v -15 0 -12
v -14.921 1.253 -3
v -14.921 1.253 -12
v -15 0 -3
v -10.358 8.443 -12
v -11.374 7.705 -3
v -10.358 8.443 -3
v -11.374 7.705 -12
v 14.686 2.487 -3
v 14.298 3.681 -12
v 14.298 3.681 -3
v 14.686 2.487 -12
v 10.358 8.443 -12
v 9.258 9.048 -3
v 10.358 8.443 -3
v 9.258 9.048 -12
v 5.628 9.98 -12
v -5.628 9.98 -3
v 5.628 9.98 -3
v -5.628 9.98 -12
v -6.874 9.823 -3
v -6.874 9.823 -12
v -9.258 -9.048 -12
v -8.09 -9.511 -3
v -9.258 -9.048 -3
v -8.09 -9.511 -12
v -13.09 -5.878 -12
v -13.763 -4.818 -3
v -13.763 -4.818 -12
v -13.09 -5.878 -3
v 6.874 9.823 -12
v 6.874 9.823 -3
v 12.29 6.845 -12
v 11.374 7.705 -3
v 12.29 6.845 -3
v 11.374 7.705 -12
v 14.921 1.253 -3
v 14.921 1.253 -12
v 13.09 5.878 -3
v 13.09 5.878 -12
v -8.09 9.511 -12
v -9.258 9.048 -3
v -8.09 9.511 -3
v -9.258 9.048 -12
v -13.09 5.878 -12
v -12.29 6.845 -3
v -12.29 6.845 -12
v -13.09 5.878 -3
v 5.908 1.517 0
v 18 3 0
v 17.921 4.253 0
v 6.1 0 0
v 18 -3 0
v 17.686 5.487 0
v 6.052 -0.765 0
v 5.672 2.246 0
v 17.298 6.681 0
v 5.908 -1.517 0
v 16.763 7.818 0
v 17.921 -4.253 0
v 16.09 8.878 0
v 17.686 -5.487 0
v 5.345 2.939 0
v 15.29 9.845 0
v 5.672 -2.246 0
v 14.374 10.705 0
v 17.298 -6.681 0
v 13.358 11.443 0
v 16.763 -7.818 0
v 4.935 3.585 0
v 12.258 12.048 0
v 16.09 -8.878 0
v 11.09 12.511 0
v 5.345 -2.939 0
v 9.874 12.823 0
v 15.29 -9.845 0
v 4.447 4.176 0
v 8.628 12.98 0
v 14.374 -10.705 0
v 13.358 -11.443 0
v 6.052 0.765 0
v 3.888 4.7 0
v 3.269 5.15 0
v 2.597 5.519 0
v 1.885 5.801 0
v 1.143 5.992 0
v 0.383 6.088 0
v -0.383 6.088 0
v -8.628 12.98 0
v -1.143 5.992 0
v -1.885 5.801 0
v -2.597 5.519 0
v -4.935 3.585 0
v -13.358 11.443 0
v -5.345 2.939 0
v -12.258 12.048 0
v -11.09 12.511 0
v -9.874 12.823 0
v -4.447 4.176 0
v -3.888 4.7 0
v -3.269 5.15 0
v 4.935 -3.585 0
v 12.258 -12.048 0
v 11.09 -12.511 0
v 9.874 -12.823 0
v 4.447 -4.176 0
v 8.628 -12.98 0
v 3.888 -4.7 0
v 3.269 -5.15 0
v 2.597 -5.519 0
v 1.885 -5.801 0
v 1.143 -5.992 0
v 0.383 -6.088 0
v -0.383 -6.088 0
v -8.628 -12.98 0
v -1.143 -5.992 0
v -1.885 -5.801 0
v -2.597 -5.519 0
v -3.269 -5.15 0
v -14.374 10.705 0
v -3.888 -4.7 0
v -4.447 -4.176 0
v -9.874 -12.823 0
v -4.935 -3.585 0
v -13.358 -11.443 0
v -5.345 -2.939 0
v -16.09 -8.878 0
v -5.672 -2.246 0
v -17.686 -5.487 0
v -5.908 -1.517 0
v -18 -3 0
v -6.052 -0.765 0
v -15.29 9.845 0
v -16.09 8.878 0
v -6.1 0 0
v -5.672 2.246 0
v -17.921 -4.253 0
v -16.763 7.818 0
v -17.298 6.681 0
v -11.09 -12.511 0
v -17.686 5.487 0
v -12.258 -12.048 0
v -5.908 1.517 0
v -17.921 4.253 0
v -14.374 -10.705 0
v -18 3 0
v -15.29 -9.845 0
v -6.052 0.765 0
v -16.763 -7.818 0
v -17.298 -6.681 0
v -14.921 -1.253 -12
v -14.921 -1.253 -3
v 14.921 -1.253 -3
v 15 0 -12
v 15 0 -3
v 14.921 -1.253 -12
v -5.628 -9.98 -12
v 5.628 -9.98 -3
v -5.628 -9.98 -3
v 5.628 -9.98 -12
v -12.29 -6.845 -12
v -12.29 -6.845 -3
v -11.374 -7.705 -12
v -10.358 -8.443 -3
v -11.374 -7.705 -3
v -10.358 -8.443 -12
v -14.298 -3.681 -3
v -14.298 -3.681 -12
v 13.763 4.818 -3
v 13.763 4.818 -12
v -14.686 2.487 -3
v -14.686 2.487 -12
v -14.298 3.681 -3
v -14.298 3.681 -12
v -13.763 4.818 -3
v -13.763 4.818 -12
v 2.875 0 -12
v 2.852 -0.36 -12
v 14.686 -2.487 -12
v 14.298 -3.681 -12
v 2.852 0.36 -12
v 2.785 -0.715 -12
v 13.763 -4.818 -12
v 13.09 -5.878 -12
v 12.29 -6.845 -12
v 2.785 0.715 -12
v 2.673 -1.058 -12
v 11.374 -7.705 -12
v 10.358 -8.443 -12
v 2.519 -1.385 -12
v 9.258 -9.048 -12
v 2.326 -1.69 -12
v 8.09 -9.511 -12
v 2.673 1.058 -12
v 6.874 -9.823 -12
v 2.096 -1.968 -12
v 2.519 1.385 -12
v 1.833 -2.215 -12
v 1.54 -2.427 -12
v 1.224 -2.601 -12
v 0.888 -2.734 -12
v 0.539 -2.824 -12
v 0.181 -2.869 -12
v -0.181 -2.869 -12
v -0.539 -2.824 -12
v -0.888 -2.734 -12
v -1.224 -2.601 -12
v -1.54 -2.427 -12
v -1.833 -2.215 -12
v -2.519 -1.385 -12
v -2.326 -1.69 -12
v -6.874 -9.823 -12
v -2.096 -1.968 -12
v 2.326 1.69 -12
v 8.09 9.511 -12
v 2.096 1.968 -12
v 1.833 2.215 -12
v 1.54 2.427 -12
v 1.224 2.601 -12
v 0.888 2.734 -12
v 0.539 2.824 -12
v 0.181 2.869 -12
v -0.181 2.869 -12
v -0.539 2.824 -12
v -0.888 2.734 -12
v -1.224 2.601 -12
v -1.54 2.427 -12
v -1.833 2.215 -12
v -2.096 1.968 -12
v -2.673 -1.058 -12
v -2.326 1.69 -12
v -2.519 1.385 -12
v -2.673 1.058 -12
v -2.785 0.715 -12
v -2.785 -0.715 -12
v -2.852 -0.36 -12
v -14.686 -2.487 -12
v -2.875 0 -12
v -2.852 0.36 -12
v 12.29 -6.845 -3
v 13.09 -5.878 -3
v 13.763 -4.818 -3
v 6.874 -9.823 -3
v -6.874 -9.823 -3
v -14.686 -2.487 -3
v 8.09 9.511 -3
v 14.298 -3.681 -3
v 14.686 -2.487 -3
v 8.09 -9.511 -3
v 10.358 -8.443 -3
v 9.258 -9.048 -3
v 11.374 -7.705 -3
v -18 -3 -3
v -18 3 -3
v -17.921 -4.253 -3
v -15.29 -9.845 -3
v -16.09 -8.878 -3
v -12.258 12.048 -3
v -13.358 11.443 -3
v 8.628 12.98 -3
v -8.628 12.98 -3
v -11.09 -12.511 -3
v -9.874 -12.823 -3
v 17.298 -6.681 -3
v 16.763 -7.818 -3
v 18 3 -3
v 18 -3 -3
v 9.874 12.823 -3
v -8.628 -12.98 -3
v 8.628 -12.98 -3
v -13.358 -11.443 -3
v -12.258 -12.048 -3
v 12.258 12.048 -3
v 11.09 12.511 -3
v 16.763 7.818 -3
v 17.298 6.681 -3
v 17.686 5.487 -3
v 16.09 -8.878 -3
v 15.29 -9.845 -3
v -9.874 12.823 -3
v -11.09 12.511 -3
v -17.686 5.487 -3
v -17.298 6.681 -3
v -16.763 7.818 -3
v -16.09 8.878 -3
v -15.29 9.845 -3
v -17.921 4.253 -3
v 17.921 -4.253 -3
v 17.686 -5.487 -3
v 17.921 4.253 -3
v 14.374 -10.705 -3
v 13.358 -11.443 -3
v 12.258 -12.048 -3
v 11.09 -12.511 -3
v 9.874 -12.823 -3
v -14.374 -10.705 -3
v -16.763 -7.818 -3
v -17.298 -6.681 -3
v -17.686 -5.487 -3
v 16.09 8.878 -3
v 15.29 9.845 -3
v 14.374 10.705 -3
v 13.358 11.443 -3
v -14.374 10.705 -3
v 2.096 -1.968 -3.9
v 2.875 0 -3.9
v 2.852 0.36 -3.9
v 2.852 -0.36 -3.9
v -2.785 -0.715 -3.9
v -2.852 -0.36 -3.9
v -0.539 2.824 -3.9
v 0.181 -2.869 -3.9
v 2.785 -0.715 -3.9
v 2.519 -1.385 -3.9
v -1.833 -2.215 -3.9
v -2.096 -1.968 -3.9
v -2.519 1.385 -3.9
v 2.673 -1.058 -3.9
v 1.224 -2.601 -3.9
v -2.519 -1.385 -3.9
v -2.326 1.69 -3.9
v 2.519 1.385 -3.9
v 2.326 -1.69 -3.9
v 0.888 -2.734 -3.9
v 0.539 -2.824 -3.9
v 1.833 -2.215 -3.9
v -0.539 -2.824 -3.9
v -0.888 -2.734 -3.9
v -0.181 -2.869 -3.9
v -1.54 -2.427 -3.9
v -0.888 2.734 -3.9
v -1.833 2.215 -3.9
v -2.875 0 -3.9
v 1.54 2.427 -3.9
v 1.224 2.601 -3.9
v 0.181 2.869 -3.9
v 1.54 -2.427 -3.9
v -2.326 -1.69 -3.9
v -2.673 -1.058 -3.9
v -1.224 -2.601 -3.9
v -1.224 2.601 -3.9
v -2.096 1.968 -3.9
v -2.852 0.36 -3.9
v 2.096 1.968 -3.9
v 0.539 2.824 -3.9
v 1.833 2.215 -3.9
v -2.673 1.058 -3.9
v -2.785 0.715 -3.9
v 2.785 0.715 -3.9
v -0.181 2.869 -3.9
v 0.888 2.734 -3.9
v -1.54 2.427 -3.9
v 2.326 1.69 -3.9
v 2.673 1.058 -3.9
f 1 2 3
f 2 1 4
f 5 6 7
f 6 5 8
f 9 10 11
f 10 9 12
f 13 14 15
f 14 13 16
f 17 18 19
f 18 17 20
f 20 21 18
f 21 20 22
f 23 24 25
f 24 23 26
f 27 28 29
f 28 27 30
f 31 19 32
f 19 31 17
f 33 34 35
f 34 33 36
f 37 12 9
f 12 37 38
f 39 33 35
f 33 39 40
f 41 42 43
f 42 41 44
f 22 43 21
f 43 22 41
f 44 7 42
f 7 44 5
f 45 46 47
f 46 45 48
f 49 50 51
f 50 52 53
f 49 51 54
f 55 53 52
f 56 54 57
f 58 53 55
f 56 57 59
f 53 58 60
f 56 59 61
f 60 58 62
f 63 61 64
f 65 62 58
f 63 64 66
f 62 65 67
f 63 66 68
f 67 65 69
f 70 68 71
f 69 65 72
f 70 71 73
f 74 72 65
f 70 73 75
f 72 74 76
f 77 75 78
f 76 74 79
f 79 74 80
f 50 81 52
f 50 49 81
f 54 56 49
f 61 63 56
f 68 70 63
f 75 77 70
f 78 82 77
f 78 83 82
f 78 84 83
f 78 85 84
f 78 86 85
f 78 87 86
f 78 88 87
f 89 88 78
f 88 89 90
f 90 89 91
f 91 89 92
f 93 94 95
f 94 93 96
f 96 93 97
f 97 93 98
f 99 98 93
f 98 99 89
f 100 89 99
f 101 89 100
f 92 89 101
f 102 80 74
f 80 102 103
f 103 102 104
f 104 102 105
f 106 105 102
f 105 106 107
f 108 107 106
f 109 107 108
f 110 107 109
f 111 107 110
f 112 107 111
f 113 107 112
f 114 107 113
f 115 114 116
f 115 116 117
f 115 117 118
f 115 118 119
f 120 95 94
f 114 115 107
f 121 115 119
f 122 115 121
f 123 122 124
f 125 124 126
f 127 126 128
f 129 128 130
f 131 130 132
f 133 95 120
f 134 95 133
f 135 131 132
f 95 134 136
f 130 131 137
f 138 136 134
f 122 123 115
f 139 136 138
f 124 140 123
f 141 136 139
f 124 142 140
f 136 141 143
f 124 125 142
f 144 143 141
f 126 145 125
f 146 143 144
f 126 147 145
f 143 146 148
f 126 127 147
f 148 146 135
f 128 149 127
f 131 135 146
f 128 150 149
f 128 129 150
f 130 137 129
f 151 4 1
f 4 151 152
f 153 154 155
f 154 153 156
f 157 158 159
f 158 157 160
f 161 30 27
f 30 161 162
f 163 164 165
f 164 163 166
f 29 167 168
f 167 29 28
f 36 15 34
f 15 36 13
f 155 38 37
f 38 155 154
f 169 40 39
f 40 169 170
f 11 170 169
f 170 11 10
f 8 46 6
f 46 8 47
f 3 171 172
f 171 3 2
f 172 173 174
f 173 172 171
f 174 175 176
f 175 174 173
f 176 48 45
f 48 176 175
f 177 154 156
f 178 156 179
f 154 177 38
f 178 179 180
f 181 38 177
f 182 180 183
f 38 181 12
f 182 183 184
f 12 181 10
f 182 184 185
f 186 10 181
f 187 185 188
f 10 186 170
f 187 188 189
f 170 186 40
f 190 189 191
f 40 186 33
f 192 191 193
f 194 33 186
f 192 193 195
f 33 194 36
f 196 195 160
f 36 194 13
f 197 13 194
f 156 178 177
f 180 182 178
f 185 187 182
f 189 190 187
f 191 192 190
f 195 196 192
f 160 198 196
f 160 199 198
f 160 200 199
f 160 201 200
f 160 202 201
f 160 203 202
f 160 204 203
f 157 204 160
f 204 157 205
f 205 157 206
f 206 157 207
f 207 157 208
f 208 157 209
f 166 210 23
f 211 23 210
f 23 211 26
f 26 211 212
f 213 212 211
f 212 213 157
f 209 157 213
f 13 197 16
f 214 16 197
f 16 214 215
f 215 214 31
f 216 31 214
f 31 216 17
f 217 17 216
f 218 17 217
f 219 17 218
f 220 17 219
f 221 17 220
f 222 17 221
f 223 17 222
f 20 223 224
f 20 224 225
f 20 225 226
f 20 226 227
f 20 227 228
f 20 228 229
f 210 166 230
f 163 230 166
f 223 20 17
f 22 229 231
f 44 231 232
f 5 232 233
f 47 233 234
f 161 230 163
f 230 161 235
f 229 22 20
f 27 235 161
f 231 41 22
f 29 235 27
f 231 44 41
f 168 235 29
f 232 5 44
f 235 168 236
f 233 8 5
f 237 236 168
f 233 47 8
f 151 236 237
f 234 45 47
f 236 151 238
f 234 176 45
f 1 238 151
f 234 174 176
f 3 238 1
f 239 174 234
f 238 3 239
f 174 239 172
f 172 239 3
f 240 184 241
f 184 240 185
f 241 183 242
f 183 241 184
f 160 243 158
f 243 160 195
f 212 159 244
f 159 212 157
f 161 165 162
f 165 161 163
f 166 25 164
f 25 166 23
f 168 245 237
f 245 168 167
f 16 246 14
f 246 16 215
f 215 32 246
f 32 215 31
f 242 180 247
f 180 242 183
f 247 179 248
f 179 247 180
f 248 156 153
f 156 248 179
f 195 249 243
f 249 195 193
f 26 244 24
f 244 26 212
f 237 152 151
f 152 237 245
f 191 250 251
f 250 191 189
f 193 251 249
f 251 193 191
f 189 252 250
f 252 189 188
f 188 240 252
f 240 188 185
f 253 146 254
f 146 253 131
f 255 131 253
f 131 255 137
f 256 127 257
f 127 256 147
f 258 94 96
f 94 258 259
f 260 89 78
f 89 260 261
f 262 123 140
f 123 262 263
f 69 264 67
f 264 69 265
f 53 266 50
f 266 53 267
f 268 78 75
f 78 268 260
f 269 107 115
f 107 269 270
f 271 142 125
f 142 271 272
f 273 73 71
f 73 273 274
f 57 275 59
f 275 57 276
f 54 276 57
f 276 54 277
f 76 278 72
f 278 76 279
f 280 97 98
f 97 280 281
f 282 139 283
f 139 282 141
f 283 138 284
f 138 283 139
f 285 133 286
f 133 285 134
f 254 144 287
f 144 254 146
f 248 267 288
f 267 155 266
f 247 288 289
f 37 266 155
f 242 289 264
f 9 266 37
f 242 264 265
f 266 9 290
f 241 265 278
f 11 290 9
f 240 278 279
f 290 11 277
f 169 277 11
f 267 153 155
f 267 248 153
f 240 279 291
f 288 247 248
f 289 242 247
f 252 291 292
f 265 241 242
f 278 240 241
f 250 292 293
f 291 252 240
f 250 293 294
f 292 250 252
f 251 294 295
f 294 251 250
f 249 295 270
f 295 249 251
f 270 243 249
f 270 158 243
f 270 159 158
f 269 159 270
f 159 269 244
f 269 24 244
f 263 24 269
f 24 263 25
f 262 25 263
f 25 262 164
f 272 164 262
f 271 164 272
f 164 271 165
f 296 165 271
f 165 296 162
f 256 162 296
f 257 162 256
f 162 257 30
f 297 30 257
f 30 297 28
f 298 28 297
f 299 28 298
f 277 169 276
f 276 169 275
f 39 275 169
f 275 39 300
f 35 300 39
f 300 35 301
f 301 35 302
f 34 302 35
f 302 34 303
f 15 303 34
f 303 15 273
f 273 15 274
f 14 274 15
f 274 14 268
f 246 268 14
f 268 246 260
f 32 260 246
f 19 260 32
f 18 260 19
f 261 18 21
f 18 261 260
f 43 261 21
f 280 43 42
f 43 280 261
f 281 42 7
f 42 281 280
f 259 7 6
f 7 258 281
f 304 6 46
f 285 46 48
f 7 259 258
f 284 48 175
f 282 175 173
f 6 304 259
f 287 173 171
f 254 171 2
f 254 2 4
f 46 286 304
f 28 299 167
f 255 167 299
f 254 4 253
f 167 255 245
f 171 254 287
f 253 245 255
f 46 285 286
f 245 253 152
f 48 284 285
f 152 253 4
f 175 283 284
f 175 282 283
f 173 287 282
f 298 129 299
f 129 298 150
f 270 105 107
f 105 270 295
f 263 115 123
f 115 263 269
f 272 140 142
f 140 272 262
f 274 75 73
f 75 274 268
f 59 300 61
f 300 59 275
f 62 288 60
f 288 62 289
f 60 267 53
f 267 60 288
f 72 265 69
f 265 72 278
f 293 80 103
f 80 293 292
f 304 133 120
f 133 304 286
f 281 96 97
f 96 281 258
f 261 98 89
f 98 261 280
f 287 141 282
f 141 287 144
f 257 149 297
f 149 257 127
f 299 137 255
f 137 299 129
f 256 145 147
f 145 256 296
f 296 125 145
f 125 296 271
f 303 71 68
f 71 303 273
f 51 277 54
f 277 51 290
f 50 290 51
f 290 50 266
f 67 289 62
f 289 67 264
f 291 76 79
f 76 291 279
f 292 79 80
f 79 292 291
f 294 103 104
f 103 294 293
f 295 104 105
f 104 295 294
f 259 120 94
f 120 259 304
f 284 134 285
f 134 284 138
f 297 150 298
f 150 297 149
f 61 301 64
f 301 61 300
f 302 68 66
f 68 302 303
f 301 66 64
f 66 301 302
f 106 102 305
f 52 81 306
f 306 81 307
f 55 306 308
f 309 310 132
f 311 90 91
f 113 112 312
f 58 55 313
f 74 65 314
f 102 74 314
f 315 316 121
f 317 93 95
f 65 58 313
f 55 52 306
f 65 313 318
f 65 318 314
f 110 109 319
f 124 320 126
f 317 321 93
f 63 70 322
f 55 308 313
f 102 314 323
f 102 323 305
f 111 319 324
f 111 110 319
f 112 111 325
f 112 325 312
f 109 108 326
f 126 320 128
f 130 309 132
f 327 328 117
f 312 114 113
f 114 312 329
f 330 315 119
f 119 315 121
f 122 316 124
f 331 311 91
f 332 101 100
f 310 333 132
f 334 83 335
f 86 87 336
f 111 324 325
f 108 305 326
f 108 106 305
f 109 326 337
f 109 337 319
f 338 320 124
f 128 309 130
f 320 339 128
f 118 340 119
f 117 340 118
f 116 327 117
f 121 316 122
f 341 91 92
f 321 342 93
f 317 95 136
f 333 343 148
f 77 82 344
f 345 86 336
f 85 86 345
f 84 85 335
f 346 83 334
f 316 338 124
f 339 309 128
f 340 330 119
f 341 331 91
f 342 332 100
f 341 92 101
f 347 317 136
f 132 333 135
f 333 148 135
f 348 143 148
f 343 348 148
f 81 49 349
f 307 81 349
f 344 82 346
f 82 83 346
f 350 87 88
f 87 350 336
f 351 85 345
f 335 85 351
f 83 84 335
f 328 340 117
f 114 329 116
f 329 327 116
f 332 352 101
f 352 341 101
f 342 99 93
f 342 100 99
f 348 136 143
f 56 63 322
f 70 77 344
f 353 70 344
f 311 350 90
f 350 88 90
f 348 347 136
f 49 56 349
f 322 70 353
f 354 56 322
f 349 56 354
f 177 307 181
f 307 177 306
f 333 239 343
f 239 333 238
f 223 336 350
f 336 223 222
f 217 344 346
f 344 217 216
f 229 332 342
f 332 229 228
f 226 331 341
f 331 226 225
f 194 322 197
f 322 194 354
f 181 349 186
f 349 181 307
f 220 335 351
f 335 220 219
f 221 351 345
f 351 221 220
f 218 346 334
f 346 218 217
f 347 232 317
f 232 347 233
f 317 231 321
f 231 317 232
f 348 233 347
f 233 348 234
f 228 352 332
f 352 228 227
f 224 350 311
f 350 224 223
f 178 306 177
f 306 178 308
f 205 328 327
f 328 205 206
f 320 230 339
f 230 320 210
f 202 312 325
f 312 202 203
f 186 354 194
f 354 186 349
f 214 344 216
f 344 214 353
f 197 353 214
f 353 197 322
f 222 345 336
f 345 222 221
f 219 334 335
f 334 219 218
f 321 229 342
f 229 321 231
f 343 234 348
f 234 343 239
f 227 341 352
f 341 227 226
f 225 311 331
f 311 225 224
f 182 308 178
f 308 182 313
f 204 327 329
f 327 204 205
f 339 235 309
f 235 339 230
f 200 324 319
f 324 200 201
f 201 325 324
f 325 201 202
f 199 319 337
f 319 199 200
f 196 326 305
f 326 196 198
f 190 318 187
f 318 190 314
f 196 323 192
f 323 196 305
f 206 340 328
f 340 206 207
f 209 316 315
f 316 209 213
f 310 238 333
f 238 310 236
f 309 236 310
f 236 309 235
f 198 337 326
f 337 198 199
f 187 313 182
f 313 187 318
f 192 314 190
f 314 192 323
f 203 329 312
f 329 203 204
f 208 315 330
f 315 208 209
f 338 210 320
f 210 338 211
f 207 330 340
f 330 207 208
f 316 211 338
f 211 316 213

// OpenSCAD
$fn = 50;


difference() {
	union() {
		translate(v = [0, 0, -12]) {
			hull() {
				translate(v = [-5.0000000000, 0.0000000000, 0]) {
					cylinder(h = 12, r = 10.0000000000);
				}
				translate(v = [5.0000000000, 0.0000000000, 0]) {
					cylinder(h = 12, r = 10.0000000000);
				}
				translate(v = [-5.0000000000, -0.0000000000, 0]) {
					cylinder(h = 12, r = 10.0000000000);
				}
				translate(v = [5.0000000000, -0.0000000000, 0]) {
					cylinder(h = 12, r = 10.0000000000);
				}
			}
		}
		translate(v = [0, 0, -3]) {
			hull() {
				translate(v = [-8.0000000000, 3.0000000000, 0]) {
					cylinder(h = 3, r = 10.0000000000);
				}
				translate(v = [8.0000000000, 3.0000000000, 0]) {
					cylinder(h = 3, r = 10.0000000000);
				}
				translate(v = [-8.0000000000, -3.0000000000, 0]) {
					cylinder(h = 3, r = 10.0000000000);
				}
				translate(v = [8.0000000000, -3.0000000000, 0]) {
					cylinder(h = 3, r = 10.0000000000);
				}
			}
		}
	}
	union() {
		translate(v = [0, 0, 0]) {
			rotate(a = [0, 0, 0]) {
				difference() {
					union() {
						#translate(v = [0, 0, -12.0000000000]) {
							cylinder(h = 12, r = 2.6000000000);
						}
						#translate(v = [0, 0, -3.9000000000]) {
							cylinder(h = 3.9000000000, r = 10.0000000000, r1 = 2.8750000000, r2 = 6.1000000000);
						}
						#translate(v = [0, 0, -12.0000000000]) {
							cylinder(h = 12, r = 2.8750000000);
						}
						#translate(v = [0, 0, -12.0000000000]) {
							cylinder(h = 12, r = 2.6000000000);
						}
					}
					union();
				}
			}
		}
	}
}
